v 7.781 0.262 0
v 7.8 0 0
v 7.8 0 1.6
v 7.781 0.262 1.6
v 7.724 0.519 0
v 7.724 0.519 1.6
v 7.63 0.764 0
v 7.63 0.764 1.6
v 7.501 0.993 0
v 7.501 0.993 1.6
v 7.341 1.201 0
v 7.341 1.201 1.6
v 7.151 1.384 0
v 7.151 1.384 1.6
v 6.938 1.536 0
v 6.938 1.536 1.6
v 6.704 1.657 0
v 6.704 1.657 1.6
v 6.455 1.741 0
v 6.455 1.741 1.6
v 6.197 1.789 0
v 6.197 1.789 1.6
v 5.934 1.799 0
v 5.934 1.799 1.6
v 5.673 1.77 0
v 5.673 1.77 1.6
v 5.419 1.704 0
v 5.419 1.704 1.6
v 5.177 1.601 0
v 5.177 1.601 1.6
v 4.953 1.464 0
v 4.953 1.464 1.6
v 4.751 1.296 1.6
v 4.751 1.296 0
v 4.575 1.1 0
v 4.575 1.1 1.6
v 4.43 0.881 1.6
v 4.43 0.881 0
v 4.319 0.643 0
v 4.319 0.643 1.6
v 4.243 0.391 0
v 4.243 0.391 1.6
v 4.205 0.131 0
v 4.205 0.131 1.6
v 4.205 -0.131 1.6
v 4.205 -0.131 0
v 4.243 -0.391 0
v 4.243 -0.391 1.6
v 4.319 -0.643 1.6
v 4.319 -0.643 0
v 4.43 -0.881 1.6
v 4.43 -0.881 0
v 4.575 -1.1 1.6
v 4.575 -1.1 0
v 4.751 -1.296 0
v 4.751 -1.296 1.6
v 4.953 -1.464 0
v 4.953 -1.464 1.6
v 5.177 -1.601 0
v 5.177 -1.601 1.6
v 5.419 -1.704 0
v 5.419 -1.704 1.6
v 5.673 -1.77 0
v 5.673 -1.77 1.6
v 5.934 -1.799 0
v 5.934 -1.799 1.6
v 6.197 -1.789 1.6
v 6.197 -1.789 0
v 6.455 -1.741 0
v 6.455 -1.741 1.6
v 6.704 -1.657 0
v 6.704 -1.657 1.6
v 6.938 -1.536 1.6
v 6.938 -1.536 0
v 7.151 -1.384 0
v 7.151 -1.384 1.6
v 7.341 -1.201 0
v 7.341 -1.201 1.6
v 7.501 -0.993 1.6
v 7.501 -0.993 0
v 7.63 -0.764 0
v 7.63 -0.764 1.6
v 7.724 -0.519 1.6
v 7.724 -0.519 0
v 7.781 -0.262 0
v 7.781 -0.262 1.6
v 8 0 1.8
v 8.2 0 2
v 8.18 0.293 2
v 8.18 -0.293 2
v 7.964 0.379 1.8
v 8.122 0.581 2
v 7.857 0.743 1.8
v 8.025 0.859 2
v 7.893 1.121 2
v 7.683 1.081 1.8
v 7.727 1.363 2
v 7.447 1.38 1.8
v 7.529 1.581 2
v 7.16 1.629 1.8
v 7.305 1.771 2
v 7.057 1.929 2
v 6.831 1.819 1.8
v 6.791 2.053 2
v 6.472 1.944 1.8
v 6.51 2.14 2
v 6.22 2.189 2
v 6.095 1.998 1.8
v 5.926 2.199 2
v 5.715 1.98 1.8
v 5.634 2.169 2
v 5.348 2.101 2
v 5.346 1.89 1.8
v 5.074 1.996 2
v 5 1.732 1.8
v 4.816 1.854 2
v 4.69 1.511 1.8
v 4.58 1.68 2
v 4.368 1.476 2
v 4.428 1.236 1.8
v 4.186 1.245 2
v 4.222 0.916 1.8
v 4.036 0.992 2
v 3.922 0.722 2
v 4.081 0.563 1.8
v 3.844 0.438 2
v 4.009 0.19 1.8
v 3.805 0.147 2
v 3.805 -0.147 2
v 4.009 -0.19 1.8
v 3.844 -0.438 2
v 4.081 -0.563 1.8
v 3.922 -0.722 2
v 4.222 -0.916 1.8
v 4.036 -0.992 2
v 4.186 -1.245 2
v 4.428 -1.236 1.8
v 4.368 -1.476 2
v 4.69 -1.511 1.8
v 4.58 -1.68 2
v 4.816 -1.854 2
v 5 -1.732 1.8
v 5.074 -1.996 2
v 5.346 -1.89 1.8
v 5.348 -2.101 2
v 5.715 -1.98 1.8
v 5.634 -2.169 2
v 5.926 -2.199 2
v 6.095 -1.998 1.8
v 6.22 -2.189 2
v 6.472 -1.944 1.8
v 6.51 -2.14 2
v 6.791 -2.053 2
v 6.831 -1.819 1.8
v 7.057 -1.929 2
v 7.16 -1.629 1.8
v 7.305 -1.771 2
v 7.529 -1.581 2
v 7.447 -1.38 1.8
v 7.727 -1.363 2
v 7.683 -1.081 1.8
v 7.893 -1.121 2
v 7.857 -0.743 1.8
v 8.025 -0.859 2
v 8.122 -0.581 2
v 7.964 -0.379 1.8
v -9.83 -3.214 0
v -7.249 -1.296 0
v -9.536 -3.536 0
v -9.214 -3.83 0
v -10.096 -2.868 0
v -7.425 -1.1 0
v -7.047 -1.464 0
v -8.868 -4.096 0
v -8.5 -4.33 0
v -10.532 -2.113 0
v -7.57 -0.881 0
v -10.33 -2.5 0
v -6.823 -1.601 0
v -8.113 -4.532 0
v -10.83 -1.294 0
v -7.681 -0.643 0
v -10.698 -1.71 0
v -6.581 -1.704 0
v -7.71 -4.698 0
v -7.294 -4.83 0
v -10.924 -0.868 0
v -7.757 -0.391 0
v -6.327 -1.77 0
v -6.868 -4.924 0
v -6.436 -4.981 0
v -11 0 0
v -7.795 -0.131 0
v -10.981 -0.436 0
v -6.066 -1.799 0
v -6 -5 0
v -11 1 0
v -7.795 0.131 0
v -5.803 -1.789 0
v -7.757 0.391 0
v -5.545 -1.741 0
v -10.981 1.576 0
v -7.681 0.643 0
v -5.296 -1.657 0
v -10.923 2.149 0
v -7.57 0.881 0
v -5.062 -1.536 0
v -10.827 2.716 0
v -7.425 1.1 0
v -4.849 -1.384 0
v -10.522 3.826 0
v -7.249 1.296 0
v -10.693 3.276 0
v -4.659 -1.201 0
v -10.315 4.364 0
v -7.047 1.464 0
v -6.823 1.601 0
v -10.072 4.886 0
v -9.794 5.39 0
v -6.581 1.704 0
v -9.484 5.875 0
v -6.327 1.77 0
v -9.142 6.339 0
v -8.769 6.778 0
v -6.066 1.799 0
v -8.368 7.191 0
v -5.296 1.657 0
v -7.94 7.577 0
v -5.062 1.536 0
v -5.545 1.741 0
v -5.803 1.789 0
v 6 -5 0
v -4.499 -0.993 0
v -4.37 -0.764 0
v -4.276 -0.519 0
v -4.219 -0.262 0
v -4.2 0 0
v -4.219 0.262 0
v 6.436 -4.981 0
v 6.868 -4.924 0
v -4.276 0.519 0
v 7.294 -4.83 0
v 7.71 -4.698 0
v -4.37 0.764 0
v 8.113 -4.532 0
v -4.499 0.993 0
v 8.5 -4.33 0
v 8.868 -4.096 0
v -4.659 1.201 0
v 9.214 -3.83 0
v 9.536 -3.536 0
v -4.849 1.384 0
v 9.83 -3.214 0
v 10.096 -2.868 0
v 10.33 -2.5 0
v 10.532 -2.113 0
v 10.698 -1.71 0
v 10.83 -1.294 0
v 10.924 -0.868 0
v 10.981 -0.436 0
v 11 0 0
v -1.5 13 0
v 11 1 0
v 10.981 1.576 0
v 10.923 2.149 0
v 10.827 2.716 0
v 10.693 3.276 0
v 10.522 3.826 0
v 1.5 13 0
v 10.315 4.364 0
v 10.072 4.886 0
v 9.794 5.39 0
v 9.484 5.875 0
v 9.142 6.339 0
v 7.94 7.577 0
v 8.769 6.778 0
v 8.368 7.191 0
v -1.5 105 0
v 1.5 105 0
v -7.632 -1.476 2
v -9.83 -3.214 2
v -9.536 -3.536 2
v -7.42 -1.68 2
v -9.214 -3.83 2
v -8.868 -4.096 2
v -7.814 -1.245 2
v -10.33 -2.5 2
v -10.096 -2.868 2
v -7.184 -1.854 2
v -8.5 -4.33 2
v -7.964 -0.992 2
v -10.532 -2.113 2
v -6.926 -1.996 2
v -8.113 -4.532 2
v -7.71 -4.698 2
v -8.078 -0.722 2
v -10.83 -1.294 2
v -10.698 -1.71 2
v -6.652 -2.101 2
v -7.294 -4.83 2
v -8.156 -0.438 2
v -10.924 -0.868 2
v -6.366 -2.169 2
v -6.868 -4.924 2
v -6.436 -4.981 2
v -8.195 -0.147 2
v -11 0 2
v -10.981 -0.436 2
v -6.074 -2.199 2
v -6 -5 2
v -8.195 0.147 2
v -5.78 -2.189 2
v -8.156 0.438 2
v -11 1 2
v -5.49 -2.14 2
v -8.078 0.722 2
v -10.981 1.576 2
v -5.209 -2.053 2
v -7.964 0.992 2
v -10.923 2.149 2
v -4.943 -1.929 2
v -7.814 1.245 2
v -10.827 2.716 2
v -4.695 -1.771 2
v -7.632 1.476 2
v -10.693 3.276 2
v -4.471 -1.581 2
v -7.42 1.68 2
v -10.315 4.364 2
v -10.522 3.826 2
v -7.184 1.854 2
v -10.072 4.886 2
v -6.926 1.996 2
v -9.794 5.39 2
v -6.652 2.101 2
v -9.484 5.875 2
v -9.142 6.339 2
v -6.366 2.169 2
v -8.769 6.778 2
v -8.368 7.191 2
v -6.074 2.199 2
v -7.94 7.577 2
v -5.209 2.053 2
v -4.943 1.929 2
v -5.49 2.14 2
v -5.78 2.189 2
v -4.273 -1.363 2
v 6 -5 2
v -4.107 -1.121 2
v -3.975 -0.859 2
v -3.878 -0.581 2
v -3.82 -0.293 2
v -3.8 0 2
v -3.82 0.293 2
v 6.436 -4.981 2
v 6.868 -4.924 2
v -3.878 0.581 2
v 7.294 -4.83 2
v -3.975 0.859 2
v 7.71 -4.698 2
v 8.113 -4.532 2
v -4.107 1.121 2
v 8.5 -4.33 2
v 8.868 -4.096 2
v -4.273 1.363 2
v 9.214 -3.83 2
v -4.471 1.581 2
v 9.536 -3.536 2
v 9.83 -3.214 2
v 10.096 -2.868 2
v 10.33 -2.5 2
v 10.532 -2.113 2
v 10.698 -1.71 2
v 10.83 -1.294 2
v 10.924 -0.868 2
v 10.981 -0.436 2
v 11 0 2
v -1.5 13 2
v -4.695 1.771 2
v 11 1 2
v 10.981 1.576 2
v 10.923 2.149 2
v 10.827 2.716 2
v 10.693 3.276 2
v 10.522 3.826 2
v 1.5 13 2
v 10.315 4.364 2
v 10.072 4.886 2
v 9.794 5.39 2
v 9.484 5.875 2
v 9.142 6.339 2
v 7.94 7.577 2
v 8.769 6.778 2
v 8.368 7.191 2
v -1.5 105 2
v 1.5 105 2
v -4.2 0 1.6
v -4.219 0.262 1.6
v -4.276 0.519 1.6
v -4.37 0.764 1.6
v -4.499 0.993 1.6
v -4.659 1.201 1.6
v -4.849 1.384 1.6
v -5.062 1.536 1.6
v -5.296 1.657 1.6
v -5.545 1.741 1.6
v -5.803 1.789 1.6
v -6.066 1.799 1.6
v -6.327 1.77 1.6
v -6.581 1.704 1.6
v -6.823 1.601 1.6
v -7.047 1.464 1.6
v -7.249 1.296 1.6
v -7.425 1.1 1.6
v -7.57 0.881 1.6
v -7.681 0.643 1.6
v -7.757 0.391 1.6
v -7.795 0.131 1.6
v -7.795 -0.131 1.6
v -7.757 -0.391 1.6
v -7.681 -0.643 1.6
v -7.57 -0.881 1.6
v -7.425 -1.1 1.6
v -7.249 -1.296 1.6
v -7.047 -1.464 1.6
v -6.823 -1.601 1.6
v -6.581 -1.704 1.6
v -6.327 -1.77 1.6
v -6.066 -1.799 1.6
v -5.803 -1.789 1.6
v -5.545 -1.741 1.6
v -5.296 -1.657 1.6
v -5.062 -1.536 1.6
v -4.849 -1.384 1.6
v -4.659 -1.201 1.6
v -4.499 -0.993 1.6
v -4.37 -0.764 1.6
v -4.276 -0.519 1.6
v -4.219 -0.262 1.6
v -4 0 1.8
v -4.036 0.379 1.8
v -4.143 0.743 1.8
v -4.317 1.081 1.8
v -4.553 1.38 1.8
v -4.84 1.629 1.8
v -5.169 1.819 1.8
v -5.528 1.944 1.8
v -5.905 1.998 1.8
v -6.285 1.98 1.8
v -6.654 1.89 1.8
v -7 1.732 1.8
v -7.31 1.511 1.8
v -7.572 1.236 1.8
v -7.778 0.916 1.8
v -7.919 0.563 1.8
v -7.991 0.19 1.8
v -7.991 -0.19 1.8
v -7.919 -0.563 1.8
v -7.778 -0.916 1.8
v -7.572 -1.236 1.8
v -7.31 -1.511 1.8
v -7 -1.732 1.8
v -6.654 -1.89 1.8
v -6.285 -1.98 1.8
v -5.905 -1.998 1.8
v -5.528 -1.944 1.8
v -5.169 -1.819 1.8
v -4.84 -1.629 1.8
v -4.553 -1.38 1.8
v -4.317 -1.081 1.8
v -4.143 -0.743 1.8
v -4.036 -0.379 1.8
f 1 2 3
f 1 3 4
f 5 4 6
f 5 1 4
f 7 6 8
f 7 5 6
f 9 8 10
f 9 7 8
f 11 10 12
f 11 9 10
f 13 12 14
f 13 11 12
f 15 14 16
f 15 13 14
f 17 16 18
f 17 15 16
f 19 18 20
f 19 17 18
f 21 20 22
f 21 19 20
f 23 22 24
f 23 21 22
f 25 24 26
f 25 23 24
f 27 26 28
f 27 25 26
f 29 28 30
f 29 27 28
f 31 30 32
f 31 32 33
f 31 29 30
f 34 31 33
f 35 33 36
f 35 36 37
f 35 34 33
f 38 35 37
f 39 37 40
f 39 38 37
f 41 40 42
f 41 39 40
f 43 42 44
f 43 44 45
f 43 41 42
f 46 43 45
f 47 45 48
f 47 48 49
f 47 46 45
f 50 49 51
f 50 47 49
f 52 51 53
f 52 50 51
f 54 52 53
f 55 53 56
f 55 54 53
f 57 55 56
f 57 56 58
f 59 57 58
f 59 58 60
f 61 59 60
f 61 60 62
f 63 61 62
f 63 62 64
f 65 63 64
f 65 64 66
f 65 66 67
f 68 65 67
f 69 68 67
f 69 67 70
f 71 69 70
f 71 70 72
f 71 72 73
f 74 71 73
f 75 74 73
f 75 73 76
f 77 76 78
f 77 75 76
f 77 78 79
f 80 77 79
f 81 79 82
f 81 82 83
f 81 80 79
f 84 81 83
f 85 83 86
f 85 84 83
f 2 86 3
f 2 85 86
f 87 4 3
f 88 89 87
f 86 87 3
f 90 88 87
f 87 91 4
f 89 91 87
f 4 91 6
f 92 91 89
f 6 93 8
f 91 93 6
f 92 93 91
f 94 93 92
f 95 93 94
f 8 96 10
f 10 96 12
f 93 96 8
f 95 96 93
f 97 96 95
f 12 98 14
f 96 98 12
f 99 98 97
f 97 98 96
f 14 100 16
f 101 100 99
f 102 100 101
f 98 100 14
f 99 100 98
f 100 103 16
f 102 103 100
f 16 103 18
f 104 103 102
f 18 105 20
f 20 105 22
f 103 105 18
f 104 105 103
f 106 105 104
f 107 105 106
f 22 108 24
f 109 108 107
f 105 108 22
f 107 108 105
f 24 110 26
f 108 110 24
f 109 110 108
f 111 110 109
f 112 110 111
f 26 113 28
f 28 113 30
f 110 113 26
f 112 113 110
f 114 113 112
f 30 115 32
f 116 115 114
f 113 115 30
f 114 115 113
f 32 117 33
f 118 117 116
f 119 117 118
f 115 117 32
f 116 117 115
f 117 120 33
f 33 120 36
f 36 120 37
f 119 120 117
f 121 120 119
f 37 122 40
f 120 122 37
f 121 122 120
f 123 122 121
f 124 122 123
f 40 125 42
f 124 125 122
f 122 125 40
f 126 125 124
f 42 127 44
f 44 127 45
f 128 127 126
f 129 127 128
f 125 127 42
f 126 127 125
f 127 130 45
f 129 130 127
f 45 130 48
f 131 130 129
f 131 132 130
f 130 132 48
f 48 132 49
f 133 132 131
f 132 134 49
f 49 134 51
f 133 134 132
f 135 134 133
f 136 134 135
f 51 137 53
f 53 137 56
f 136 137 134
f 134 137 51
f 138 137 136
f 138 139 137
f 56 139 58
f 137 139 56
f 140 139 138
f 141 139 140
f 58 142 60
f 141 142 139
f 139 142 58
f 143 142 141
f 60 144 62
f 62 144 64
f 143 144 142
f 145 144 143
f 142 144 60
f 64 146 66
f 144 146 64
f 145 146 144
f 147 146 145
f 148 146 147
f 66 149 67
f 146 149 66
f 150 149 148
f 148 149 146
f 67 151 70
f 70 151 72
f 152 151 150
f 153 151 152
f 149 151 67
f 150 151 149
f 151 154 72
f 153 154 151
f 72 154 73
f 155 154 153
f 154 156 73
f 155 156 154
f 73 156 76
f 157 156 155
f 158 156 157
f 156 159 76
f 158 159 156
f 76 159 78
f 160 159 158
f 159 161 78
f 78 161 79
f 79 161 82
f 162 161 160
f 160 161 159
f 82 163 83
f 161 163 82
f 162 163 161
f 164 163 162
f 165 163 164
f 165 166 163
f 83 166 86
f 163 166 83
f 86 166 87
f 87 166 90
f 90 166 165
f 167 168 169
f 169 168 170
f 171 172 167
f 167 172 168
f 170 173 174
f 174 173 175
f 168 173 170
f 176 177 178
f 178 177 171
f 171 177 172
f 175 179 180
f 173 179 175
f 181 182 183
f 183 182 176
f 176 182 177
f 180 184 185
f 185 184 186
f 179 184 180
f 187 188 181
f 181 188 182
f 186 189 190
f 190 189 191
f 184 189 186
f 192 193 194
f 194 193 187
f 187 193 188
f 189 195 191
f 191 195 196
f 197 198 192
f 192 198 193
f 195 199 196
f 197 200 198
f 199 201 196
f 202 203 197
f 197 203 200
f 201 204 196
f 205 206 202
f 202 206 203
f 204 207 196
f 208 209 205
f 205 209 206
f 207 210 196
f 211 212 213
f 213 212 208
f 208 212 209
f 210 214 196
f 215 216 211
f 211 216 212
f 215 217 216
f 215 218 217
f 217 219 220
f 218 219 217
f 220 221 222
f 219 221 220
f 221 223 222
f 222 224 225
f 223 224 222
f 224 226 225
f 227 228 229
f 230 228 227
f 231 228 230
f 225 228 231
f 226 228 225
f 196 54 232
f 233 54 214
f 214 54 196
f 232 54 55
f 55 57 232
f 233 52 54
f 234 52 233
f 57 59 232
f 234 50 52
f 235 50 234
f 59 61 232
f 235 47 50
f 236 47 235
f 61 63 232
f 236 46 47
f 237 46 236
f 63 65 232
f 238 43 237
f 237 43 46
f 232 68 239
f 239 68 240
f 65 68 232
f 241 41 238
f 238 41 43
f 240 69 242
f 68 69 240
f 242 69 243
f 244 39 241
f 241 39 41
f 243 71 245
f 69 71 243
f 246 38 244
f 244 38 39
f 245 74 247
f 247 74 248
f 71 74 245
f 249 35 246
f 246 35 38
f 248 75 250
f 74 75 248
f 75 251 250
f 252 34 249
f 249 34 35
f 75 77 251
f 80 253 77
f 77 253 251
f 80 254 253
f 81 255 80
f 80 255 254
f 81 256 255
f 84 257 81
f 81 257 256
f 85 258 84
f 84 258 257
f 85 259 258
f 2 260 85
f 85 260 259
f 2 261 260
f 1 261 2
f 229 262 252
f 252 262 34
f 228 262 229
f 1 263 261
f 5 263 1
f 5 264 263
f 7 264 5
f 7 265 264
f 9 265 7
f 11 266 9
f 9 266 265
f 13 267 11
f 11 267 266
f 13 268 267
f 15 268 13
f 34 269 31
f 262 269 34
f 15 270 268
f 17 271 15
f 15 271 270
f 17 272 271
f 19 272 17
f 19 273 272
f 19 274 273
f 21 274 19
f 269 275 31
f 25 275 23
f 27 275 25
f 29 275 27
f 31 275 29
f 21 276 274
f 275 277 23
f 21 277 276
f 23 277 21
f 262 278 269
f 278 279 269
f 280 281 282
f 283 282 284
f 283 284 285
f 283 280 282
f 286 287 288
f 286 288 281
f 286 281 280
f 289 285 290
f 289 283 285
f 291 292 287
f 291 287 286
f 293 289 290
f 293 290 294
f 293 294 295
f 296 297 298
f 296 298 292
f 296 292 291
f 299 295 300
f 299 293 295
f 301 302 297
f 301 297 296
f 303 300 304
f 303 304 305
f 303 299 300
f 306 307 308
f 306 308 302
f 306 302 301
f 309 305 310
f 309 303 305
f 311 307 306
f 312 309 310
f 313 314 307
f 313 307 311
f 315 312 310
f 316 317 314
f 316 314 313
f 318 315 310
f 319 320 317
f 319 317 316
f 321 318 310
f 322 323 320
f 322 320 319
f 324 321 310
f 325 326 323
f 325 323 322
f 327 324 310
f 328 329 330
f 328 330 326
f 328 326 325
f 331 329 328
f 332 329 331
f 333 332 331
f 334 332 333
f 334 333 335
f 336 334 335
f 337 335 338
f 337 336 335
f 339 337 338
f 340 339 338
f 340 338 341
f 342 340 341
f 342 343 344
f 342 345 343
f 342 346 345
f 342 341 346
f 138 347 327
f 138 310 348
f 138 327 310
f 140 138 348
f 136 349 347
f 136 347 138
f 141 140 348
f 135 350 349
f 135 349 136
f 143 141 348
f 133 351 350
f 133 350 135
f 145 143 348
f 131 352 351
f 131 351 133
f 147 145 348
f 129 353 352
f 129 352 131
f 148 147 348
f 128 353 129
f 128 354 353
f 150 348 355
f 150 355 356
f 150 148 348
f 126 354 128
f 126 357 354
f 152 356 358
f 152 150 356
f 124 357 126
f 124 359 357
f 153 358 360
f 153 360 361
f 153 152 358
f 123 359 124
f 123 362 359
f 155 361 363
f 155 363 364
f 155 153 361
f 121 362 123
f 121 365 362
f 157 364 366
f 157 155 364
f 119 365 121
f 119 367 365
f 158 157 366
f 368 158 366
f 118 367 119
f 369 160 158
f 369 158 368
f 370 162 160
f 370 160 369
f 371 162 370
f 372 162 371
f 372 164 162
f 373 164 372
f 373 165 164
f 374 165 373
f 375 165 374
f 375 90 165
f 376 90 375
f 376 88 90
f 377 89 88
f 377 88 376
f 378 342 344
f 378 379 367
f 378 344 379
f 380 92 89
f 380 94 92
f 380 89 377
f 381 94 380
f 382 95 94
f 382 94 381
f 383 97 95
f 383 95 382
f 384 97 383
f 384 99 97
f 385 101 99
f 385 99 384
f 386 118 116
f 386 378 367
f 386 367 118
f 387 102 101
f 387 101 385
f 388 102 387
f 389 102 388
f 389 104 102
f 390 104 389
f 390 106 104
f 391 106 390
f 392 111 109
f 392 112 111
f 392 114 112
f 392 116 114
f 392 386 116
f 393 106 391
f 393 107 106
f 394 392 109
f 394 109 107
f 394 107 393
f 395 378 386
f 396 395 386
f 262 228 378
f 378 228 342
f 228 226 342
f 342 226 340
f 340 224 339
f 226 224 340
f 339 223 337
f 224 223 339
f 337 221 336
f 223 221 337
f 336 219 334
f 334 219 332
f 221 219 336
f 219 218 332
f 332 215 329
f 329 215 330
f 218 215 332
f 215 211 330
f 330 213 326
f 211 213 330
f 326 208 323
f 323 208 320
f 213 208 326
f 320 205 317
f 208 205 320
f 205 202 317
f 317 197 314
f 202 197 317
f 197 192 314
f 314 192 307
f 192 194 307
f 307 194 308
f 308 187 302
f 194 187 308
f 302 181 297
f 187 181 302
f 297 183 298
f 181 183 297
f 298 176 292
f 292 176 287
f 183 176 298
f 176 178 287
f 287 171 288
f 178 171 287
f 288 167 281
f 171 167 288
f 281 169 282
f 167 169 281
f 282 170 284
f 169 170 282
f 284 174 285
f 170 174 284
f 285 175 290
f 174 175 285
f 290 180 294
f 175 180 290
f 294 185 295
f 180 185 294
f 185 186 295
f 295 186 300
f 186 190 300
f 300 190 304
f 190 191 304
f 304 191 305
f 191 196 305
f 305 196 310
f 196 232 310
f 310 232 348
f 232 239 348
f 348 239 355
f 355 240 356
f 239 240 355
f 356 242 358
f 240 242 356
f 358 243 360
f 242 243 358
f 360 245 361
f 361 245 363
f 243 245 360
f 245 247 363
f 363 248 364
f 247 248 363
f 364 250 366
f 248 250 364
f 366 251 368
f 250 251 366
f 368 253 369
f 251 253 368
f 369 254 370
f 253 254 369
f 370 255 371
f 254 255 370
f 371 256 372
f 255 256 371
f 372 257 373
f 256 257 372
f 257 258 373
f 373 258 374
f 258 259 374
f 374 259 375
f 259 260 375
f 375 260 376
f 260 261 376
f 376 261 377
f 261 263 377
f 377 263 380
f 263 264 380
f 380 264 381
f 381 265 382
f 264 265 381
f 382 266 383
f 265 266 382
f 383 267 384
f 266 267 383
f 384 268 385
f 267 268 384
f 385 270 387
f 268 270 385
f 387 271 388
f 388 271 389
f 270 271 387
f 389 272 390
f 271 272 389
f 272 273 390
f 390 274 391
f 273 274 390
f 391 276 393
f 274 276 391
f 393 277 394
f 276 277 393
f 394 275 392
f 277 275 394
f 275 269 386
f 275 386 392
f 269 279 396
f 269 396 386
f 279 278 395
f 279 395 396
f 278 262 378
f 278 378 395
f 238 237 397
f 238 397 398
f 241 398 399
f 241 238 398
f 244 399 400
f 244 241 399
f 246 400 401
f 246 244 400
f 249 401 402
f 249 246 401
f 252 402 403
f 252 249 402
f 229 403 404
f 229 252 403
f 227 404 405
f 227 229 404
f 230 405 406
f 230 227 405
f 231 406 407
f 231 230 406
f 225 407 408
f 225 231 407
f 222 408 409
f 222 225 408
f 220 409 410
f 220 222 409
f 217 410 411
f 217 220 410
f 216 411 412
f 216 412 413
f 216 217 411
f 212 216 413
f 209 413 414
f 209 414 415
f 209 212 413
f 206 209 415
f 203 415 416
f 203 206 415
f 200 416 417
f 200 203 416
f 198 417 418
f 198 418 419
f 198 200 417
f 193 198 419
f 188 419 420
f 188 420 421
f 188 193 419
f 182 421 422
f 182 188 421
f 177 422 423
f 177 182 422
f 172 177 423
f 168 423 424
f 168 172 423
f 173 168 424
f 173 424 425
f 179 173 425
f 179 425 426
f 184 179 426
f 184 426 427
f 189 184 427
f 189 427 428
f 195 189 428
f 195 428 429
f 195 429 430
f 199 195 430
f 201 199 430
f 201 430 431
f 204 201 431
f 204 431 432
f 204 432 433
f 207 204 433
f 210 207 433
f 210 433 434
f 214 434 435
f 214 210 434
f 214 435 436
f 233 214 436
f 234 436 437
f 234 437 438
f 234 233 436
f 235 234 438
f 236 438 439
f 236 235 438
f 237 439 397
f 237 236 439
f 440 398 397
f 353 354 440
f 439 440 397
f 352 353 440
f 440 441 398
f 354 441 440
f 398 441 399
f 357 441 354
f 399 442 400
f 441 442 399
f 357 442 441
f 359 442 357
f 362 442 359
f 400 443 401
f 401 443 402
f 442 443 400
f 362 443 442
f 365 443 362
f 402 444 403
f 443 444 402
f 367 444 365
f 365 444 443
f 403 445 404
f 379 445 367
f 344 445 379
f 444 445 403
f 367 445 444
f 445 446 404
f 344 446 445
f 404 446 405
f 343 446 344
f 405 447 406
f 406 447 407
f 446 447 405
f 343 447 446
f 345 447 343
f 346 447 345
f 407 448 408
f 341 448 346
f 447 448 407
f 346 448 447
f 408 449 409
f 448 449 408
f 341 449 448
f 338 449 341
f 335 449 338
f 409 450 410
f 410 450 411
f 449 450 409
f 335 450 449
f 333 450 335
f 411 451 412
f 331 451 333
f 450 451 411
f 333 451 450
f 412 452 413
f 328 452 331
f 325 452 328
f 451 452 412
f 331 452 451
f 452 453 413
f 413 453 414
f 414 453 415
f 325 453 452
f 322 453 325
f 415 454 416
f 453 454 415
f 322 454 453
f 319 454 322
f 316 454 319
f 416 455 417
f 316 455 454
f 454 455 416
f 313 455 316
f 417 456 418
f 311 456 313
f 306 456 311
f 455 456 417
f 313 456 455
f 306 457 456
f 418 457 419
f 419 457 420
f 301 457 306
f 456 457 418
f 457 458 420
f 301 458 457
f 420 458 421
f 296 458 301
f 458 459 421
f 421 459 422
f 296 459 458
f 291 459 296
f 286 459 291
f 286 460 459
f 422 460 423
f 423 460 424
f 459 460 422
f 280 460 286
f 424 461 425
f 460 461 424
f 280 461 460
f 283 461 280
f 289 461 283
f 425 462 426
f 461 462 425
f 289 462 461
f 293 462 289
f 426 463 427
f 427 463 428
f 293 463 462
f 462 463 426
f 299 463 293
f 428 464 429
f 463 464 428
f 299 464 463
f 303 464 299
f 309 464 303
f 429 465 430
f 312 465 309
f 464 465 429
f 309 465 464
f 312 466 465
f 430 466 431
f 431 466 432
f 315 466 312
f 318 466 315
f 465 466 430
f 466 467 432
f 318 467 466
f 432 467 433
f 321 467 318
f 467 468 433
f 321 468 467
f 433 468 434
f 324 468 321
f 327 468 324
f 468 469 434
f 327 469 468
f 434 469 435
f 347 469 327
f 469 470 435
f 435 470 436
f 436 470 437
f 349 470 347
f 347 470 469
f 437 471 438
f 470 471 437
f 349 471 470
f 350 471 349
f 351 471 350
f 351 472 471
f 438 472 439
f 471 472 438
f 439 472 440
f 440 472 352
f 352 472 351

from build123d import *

# Parameters (mm, degrees)
SKETCH_R     = 1.8
PAD_DEPTH    = 2
CHAMFER_SIZE = 0.4


with BuildPart() as part:
    # Sketch → Pad (new body)
    with BuildSketch(Plane.XY):
        with BuildLine():
            Line((11, 0), (11, 1))
            ThreePointArc((11, 1), (10.197651, 4.626718), (7.940355, 7.576543))
            Line((1.5, 13), (7.940355, 7.576543))
            Line((1.5, 105), (1.5, 13))
            Line((-1.5, 105), (1.5, 105))
            Line((-1.5, 13), (-1.5, 105))
            Line((-1.5, 13), (-7.940355, 7.576543))
            ThreePointArc((-7.940355, 7.576543), (-10.197651, 4.626718), (-11, 1))
            Line((-11, 1), (-11, 0))
            ThreePointArc((-11, 0), (-9.535534, -3.535534), (-6, -5))
            Line((-6, -5), (6, -5))
            ThreePointArc((6, -5), (9.535534, -3.535534), (11, 0))
        make_face()
        with Locations((-6, 0)):
            Circle(SKETCH_R, mode=Mode.SUBTRACT)
        with Locations((6, 0)):
            Circle(SKETCH_R, mode=Mode.SUBTRACT)
    extrude(amount=PAD_DEPTH)

    # Chamfer
    chamfer_edges = [part.edges().sort_by_distance(p)[0] for p in [
        (-7.8, 0, 2),
        (4.2, 0, 2),
    ]]
    chamfer(chamfer_edges, length=CHAMFER_SIZE)


solid = part.part
